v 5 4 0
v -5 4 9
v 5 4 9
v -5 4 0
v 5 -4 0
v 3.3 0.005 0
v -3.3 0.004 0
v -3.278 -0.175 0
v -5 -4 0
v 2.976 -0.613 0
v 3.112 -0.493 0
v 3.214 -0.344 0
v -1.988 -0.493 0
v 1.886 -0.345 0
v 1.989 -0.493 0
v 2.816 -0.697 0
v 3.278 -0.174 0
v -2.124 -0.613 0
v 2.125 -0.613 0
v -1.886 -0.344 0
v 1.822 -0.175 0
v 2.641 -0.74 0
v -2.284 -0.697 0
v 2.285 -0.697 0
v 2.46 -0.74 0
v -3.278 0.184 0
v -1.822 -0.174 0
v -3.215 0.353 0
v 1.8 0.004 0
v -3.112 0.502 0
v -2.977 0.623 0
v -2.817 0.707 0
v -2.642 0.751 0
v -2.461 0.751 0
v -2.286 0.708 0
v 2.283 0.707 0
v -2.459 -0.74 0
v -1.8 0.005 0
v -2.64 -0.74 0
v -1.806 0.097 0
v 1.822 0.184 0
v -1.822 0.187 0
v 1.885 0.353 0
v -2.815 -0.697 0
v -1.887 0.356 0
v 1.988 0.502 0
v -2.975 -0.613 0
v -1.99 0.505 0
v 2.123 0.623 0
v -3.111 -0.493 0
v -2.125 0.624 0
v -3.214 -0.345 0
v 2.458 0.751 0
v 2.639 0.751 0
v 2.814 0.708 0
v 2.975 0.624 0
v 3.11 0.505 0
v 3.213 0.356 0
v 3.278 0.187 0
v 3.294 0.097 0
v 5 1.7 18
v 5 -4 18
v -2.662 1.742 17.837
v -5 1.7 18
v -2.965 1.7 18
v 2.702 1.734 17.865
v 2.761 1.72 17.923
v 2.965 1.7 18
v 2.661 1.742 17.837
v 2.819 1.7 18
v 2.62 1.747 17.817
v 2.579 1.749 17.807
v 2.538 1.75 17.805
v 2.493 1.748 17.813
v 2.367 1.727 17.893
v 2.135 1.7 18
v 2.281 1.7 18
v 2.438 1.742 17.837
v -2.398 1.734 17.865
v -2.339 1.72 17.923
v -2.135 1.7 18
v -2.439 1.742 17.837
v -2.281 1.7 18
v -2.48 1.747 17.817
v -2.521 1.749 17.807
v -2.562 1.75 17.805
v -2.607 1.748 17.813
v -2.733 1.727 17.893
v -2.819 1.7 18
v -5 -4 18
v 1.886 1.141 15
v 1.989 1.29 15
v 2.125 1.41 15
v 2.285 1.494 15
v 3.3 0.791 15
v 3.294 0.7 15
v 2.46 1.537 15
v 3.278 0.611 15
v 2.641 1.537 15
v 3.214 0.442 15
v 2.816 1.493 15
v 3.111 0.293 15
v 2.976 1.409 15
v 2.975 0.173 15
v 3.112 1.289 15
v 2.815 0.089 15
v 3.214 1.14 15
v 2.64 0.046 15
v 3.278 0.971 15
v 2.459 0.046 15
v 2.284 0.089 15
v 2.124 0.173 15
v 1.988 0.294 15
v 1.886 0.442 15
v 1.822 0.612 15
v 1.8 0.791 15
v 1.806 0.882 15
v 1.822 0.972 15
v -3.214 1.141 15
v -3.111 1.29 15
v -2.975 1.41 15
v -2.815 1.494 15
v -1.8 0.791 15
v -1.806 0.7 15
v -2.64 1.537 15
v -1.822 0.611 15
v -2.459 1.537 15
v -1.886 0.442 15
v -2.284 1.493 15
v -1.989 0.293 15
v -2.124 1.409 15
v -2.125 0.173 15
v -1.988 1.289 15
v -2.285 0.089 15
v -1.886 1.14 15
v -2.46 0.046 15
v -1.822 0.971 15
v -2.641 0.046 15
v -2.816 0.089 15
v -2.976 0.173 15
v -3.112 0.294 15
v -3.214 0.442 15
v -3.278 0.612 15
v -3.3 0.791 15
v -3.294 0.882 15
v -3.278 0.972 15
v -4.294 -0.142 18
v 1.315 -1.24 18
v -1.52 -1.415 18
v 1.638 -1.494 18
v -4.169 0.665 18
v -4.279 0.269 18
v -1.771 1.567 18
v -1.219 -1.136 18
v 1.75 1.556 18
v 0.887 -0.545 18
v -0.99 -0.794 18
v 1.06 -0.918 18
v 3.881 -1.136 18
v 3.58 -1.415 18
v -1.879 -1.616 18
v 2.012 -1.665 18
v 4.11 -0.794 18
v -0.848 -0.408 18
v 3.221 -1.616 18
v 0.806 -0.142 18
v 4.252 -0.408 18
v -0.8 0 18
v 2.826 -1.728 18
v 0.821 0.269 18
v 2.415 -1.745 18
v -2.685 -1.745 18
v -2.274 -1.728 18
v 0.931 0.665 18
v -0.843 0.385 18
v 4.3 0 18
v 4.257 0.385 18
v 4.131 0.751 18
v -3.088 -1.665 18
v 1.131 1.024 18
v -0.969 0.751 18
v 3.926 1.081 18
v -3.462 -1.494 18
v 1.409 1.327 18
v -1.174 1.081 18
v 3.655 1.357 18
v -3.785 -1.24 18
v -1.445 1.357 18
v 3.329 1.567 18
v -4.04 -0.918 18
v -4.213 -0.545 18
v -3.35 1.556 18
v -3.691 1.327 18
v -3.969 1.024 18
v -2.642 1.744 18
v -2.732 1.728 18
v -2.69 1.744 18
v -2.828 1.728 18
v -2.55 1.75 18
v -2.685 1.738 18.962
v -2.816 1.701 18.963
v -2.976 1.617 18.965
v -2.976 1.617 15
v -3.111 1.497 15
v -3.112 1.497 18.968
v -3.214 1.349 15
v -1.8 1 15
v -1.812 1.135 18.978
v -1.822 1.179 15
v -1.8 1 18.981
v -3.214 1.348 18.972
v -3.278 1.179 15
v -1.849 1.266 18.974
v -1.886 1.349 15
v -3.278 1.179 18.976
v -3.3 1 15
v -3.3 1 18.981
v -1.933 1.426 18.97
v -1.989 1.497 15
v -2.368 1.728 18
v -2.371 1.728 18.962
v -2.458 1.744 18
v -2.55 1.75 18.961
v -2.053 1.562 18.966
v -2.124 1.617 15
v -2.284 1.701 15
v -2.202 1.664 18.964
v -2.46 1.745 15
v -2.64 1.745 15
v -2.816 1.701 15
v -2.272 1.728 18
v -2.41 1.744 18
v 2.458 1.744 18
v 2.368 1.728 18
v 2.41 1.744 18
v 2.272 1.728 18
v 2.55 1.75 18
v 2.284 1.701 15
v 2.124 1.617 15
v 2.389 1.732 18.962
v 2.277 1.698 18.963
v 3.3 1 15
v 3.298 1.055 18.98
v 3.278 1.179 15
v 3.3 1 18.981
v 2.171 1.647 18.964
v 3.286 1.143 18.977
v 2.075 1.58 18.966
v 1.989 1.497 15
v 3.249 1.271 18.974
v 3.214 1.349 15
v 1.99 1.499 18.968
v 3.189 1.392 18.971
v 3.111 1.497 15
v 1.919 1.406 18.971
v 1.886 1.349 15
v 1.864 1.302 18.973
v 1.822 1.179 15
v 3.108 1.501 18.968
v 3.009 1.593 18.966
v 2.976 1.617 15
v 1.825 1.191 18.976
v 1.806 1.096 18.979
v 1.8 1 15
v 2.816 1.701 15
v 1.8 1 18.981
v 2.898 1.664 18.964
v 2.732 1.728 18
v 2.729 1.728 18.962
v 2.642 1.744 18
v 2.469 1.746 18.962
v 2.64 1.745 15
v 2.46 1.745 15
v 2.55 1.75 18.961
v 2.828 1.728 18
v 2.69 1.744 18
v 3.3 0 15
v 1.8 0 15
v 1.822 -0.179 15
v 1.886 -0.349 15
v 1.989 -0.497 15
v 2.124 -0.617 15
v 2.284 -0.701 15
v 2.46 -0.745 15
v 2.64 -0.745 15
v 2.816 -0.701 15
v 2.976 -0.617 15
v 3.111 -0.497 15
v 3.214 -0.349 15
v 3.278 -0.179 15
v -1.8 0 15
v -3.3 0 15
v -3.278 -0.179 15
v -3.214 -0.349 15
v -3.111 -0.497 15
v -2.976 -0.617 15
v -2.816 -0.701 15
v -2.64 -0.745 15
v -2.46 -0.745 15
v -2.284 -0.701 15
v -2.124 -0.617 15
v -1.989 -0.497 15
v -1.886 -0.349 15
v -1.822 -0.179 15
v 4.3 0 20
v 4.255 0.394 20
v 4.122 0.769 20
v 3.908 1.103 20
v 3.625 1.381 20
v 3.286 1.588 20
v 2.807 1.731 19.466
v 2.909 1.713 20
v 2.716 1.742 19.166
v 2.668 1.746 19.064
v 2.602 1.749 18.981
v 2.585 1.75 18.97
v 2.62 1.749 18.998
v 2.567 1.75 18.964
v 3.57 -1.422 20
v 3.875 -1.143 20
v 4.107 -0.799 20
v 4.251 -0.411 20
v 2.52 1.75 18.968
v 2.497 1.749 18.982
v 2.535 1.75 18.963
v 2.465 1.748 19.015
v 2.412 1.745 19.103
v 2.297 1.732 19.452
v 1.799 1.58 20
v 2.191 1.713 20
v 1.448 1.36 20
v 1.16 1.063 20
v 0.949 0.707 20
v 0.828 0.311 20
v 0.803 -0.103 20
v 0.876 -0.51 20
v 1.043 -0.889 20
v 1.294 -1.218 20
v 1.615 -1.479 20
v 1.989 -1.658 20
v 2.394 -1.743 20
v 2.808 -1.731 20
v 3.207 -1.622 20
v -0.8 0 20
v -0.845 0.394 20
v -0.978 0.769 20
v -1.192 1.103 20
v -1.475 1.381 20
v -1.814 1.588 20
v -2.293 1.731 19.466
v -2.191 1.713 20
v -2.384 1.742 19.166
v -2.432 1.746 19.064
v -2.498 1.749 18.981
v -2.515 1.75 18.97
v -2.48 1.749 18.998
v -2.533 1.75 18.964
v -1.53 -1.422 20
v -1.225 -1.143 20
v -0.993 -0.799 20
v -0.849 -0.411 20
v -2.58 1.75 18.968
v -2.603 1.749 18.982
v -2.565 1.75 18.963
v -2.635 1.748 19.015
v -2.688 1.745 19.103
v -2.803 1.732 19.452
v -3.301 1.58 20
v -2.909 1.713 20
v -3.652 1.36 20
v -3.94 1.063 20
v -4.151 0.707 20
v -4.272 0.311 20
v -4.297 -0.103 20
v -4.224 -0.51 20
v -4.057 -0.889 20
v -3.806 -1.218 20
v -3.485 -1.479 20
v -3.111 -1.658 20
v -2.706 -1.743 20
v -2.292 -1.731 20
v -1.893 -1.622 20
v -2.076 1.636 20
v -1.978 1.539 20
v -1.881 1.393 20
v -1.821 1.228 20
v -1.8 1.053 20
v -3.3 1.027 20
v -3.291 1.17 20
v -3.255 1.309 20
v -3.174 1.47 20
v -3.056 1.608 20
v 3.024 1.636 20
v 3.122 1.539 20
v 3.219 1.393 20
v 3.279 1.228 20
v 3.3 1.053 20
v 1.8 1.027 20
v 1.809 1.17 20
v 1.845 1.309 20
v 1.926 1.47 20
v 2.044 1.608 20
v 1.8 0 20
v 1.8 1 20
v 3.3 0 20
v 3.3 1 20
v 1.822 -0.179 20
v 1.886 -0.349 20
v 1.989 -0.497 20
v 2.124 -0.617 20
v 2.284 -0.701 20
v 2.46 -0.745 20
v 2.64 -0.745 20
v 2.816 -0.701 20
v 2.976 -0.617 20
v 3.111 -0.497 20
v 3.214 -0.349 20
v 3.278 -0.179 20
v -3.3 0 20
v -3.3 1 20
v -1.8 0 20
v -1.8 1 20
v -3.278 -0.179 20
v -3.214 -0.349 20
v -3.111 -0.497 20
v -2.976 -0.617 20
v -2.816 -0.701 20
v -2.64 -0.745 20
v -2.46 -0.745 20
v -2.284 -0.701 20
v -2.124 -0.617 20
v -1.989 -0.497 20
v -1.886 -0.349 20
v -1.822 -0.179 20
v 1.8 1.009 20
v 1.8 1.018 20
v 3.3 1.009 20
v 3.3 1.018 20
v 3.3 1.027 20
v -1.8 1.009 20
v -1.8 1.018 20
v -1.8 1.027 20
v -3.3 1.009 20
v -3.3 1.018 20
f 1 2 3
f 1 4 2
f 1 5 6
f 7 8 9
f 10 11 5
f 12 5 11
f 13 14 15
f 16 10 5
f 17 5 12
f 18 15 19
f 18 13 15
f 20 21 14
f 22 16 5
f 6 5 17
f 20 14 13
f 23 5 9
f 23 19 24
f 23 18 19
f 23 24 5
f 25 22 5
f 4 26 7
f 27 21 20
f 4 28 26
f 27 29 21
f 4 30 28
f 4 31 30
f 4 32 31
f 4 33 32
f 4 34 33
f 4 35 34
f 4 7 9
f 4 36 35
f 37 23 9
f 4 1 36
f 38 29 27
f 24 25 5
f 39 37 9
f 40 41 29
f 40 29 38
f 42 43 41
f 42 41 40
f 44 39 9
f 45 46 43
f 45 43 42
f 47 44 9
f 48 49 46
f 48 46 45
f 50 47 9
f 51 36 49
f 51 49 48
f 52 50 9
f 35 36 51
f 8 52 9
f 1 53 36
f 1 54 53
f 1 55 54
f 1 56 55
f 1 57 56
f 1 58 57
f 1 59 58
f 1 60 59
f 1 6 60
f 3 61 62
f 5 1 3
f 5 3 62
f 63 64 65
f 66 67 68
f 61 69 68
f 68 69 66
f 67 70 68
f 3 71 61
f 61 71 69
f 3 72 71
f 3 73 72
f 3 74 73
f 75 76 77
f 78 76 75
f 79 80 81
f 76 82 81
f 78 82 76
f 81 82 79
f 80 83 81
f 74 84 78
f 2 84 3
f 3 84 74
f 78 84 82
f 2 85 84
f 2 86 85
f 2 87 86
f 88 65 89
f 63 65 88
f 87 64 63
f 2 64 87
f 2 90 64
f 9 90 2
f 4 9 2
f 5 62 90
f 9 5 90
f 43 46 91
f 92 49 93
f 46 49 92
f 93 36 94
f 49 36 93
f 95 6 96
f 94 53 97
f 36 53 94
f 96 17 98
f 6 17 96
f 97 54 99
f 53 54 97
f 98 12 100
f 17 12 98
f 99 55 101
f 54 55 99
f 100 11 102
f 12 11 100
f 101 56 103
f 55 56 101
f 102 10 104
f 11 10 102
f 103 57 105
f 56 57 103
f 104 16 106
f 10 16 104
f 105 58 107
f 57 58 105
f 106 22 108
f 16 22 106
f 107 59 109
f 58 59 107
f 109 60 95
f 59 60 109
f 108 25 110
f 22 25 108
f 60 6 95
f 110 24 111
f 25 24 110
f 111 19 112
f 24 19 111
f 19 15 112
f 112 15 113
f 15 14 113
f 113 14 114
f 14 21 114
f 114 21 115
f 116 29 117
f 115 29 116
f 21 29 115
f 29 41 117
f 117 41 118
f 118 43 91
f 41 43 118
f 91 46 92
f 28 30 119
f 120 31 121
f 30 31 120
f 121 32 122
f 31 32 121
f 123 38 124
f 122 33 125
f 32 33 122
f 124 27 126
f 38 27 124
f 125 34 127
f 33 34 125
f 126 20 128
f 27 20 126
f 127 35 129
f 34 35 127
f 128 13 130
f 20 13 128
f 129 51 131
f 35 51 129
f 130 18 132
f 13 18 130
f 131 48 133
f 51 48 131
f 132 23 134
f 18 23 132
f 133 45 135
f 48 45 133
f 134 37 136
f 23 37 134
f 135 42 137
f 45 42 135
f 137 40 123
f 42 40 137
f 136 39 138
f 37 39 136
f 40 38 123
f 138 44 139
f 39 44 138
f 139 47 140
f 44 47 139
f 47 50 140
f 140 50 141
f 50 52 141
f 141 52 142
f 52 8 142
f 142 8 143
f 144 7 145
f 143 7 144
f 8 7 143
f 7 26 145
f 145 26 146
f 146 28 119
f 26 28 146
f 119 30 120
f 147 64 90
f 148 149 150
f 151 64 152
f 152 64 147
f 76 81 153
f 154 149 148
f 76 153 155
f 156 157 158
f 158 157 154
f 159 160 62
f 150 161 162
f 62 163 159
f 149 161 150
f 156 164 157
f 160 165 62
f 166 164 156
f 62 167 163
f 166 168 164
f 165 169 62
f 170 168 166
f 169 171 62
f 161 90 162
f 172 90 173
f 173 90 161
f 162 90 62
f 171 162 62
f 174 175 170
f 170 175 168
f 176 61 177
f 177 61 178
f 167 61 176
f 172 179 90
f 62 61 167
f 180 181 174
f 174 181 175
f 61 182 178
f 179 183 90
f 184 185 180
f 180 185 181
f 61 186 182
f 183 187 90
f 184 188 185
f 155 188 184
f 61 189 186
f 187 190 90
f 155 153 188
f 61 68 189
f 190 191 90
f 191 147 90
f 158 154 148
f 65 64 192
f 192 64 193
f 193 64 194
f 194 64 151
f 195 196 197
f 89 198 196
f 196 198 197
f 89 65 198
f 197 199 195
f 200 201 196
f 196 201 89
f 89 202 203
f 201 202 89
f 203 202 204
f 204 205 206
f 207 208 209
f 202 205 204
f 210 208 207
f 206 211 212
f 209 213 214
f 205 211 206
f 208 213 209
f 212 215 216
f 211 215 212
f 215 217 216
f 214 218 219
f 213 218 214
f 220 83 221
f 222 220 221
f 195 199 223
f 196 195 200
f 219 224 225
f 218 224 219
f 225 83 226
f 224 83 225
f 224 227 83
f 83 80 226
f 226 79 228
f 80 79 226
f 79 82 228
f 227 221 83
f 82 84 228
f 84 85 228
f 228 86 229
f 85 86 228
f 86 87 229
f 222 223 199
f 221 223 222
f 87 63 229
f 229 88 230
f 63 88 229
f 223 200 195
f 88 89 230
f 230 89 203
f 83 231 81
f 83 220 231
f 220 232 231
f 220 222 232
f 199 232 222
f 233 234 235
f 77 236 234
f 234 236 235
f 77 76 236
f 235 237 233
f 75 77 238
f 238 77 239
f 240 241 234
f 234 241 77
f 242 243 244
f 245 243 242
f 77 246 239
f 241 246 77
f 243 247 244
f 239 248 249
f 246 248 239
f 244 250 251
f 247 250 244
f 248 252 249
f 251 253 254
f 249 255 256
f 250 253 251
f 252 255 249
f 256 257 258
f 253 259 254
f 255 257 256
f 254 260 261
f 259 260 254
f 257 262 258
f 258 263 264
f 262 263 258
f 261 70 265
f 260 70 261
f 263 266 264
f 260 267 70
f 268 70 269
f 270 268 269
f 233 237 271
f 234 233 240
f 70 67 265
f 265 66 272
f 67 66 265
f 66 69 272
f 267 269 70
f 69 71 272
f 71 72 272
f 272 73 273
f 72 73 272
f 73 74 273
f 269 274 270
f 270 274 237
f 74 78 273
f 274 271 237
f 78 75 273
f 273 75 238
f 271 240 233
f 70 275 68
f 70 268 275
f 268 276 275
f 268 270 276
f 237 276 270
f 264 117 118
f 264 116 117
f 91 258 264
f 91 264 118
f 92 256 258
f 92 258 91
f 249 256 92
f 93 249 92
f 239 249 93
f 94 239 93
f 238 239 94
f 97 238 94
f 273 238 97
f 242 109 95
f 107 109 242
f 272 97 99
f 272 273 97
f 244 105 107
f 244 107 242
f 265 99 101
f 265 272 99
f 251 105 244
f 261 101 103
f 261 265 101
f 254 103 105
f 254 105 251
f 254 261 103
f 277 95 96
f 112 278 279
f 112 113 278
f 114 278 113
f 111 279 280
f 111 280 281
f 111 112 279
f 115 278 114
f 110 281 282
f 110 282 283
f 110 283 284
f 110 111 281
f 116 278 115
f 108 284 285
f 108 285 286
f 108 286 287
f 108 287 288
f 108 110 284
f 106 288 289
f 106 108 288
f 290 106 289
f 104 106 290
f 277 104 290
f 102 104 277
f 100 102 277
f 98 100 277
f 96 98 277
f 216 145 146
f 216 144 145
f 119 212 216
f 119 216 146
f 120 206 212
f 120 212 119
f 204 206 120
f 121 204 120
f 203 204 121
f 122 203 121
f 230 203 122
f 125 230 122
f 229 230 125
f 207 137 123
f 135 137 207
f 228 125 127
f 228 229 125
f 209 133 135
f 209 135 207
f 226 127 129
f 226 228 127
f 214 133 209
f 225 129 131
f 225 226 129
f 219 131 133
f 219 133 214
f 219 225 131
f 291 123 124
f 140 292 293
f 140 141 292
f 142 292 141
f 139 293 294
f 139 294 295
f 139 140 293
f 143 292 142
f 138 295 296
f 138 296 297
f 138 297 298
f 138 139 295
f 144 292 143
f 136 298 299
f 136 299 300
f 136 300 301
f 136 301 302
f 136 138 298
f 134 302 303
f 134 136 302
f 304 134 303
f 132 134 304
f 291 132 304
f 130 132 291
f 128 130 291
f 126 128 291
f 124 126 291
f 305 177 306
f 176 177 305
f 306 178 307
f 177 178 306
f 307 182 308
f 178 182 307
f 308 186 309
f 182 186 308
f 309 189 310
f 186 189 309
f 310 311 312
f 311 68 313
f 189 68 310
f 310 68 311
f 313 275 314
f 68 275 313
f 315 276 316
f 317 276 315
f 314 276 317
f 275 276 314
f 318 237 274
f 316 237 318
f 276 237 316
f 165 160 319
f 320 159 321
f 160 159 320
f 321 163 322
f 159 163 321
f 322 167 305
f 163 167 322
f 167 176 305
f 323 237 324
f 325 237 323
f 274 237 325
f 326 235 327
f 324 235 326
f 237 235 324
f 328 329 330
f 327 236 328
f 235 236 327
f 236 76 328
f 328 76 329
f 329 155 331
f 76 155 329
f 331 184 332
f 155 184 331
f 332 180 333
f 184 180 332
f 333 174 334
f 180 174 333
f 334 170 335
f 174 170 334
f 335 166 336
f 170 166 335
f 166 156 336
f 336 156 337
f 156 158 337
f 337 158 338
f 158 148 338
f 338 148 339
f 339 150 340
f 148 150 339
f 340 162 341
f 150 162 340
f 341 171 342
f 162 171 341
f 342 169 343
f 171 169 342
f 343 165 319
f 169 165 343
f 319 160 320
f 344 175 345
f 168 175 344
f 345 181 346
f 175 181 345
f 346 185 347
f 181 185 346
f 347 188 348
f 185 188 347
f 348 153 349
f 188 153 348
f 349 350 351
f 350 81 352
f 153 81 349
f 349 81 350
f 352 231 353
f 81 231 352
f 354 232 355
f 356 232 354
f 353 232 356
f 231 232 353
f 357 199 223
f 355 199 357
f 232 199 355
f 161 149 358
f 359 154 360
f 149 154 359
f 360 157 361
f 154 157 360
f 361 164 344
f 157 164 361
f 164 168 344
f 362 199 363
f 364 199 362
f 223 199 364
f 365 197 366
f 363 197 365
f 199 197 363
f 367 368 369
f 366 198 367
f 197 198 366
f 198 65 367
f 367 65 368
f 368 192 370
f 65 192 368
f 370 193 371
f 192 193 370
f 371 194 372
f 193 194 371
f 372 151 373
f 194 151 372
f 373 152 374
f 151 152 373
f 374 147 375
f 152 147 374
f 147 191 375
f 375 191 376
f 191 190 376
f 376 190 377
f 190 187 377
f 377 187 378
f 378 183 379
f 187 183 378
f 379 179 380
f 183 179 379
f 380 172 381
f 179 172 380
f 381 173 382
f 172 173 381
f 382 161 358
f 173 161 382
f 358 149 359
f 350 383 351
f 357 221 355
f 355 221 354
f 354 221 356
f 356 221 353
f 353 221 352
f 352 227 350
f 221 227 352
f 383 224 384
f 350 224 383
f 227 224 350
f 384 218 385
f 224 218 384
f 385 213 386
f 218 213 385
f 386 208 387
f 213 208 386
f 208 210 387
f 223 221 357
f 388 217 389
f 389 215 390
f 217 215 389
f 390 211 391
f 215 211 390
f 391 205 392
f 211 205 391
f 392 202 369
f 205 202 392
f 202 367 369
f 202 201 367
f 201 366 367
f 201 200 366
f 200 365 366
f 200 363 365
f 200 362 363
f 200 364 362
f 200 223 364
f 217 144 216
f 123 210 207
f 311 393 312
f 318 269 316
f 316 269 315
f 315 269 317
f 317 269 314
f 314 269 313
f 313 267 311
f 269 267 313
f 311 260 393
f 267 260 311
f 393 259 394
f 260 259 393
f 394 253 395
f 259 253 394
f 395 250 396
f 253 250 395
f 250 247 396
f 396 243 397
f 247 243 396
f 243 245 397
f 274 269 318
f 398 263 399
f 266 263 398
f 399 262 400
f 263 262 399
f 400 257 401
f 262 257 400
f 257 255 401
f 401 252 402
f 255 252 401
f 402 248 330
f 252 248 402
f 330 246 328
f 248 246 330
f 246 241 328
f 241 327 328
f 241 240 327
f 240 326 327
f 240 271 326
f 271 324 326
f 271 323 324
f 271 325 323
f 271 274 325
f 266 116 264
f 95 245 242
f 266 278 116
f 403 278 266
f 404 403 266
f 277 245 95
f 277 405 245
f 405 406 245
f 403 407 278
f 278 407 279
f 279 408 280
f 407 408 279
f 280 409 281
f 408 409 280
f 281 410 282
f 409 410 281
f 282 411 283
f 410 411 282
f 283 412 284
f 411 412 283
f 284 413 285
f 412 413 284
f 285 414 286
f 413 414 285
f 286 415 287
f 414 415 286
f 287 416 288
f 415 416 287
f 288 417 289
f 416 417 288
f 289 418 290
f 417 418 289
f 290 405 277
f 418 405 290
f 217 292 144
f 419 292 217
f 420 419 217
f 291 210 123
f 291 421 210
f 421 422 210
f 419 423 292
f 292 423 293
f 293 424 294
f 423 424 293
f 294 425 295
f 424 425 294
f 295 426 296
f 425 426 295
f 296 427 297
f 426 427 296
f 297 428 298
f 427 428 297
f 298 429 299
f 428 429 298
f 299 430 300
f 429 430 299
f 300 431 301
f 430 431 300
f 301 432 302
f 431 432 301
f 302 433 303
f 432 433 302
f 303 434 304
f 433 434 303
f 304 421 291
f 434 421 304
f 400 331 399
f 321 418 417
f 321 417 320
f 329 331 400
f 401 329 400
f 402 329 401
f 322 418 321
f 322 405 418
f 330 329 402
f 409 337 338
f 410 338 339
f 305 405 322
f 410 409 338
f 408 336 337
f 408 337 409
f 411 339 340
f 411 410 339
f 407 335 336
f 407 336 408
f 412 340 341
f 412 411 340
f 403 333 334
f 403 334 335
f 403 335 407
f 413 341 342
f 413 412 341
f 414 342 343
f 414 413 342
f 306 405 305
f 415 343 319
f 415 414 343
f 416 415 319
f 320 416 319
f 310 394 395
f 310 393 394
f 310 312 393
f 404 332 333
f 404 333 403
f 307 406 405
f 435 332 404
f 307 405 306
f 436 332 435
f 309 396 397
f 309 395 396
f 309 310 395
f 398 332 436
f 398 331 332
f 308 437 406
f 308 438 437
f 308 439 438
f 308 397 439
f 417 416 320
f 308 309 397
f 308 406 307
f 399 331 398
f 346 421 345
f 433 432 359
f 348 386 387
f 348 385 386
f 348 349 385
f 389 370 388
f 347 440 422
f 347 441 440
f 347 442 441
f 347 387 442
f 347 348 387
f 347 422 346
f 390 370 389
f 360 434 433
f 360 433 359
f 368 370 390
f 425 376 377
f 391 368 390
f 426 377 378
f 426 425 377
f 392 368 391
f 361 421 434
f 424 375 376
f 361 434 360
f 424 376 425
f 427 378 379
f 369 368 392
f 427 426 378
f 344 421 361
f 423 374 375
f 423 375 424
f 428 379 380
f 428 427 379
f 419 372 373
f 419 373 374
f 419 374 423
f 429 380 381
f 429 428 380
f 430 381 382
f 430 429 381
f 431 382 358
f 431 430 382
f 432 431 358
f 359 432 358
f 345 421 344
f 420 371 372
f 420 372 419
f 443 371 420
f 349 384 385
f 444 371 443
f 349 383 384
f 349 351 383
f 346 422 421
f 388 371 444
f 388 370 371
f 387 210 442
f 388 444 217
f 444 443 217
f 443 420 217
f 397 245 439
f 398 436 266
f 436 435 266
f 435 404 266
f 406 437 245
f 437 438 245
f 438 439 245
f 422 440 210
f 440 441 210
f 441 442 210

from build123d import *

# Parameters (mm, degrees)
SKETCH_W        = 10
SKETCH_H        = 8
PAD_DEPTH       = 18
SKETCH001_R     = 1.75
PAD001_DEPTH    = 2
SKETCH002_R     = 0.75
POCKET_DEPTH    = 21
POCKET001_DEPTH = 10
POCKET002_DEPTH = 5


with BuildPart() as part:
    # Sketch → Pad (new body)
    with BuildSketch(Plane.XY):
        Rectangle(SKETCH_W, SKETCH_H)
    extrude(amount=PAD_DEPTH)

    # Sketch001 (on Face6 of Pad) → Pad001 (join)
    with BuildSketch(Plane.XY.offset(18)):
        with Locations((-2.55, 0)):
            Circle(SKETCH001_R)
        with Locations((2.55, 0)):
            Circle(SKETCH001_R)
    extrude(amount=PAD001_DEPTH)

    # Sketch002 (on Face4 of Pad001) → Pocket (cut)
    with BuildSketch(Plane(origin=(0, 0, -0.1), x_dir=(1, 0, 0), z_dir=(0, -0.052336, -0.99863))):
        with Locations((-2.55, 0)):
            Circle(SKETCH002_R)
        with Locations((2.55, 0)):
            Circle(SKETCH002_R)
    extrude(amount=-POCKET_DEPTH, mode=Mode.SUBTRACT)

    # Sketch003 (on Face2 of Pocket) → Pocket001 (cut)
    with BuildSketch(Plane(origin=(-5, 0, 0), x_dir=(0, -1, 0), z_dir=(-1, 0, 0))):
        Polygon((-4, 18), (-4, 9), (-1.7, 18), align=None)
    extrude(amount=-POCKET001_DEPTH, mode=Mode.SUBTRACT)

    # Sketch007 (on Face14 of Pocket001) → Pocket002 (cut)
    with BuildSketch(Plane.XY.offset(20)):
        with BuildLine():
            ThreePointArc((-3.3, 0), (-2.55, -0.75), (-1.8, 0))
            Line((-1.8, 0), (-1.8, 1))
            ThreePointArc((-1.8, 1), (-2.55, 1.75), (-3.3, 1))
            Line((-3.3, 0), (-3.3, 1))
        make_face()
        with BuildLine():
            ThreePointArc((1.8, 0), (2.55, -0.75), (3.3, 0))
            Line((3.3, 0), (3.3, 1))
            ThreePointArc((3.3, 1), (2.55, 1.75), (1.8, 1))
            Line((1.8, 0), (1.8, 1))
        make_face()
    extrude(amount=-POCKET002_DEPTH, mode=Mode.SUBTRACT)


solid = part.part
